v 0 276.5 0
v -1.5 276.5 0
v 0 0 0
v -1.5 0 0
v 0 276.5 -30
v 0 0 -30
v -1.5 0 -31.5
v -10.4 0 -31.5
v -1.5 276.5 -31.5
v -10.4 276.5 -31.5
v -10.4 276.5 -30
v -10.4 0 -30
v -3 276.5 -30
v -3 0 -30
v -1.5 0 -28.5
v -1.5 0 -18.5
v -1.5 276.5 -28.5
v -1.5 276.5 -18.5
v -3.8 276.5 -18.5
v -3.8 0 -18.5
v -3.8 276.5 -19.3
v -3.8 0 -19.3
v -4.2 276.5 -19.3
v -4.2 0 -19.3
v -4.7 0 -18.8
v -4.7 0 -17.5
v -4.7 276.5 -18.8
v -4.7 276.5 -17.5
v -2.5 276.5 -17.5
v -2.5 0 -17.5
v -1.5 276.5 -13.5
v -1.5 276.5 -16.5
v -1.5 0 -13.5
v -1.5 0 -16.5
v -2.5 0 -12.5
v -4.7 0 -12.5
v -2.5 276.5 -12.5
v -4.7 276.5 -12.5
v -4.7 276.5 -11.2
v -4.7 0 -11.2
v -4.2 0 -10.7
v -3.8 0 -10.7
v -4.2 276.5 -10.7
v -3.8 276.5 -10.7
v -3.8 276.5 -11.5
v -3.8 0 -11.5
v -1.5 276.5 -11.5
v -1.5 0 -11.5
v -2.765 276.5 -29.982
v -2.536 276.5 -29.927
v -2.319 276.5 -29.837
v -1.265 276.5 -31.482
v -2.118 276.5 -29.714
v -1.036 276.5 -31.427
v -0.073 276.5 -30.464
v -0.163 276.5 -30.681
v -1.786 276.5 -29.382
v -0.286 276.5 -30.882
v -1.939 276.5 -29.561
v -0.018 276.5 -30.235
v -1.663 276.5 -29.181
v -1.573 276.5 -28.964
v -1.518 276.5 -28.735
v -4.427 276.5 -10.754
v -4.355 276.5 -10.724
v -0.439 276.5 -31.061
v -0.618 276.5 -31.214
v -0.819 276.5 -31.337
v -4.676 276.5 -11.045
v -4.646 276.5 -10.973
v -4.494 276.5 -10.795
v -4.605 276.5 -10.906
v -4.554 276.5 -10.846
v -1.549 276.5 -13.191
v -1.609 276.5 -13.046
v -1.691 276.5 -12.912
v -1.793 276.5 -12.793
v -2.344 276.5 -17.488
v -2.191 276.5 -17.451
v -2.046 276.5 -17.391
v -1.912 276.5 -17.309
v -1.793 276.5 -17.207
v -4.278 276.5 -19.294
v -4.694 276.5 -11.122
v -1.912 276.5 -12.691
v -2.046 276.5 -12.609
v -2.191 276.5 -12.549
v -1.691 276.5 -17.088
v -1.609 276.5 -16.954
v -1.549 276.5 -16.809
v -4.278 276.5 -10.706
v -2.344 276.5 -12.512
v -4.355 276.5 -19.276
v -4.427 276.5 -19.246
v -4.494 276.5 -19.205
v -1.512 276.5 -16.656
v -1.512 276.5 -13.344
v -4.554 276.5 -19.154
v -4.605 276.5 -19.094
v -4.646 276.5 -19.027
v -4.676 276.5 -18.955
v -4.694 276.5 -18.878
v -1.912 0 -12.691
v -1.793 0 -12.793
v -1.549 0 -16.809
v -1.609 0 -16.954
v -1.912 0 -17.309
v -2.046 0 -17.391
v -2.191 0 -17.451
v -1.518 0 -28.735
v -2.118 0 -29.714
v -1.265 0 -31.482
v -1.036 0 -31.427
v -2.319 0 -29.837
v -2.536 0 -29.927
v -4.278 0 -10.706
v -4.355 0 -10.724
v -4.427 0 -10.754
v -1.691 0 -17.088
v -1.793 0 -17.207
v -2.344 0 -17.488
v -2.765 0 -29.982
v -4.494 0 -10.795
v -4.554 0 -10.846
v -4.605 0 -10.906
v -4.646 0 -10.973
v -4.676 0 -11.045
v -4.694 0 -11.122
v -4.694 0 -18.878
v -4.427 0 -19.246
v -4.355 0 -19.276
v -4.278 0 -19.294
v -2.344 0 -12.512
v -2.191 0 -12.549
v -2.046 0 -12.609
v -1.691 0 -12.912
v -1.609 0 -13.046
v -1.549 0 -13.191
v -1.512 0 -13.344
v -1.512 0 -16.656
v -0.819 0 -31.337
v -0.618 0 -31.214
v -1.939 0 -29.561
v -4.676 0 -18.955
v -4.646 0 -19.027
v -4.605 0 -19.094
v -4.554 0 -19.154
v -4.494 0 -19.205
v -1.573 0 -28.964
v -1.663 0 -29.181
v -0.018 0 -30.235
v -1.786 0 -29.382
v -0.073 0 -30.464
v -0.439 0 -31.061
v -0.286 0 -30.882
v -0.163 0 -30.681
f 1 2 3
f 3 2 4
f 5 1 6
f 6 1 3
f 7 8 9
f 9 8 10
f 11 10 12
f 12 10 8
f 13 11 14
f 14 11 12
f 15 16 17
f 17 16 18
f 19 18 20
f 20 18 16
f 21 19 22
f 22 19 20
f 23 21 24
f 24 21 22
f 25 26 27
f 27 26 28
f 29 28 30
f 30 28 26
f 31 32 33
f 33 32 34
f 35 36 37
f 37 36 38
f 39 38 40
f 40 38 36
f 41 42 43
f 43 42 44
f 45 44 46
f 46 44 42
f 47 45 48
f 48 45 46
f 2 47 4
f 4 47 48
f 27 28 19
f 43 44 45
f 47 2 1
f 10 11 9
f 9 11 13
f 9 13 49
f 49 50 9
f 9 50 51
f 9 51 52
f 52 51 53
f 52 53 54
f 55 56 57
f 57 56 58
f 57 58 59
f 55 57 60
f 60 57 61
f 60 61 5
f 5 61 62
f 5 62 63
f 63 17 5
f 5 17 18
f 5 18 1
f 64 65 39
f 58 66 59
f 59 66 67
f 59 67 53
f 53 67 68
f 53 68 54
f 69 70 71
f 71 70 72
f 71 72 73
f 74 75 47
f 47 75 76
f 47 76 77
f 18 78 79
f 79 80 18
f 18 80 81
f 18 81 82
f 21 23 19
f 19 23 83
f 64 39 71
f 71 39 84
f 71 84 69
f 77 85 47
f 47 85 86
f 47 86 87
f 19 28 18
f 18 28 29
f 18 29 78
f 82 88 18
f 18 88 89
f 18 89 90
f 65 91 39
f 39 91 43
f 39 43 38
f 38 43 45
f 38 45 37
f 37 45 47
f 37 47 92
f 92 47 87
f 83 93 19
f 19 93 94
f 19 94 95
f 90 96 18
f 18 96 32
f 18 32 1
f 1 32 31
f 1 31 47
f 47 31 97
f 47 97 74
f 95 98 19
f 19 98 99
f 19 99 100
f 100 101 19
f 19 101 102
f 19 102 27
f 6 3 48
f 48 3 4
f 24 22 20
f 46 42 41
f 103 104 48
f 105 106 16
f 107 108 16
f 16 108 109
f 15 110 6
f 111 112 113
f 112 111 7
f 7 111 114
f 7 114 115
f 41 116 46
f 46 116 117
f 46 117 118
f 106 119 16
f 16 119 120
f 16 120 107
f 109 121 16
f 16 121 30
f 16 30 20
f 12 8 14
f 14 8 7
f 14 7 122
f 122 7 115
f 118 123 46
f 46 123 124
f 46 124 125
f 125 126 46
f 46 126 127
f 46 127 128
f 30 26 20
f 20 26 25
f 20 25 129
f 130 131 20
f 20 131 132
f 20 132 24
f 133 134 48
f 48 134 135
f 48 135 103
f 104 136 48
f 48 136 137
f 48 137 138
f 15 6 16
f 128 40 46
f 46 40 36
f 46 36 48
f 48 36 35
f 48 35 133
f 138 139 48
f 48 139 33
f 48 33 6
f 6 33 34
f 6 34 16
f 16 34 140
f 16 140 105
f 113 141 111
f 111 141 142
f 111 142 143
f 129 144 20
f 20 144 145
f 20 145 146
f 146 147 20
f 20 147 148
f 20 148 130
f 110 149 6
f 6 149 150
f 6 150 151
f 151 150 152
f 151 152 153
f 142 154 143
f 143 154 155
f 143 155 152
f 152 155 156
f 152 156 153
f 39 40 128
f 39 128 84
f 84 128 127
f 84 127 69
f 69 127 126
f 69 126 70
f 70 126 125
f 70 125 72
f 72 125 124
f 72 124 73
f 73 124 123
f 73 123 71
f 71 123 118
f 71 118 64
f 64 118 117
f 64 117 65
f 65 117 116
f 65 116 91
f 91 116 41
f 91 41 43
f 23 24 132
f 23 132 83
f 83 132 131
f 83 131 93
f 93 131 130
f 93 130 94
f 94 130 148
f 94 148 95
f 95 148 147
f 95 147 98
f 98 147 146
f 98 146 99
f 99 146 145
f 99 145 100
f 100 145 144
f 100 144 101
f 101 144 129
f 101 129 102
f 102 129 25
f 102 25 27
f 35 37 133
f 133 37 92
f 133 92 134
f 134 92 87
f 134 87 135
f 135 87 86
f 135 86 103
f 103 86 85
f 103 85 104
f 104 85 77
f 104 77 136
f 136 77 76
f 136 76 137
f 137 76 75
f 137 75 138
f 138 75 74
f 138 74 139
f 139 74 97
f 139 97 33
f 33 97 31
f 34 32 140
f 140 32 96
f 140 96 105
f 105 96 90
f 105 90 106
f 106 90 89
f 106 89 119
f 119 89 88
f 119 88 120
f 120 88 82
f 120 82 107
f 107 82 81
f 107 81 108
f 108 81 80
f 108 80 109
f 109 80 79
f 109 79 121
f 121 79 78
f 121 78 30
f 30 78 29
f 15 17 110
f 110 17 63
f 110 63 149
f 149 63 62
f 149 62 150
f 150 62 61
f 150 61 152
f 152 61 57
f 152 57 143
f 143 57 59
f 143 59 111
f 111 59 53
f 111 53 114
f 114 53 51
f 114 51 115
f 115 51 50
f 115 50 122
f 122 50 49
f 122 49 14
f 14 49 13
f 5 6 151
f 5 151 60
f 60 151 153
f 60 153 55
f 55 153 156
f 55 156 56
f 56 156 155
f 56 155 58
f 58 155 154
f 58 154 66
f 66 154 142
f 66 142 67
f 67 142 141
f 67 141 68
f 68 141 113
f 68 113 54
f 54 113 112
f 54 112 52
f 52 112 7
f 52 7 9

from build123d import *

# Parameters (mm, degrees)
SALIENTE_EXTRUIR1_DEPTH = 276.5
REDONDEO1_R             = 0.5
REDONDEO2_R             = 1
REDONDEO3_R             = 1.5
REDONDEO4_R             = 1.5


with BuildPart() as part:
    # Croquis1 → Saliente-Extruir1 (new body)
    with BuildSketch(Plane(origin=(0, 0, 0), x_dir=(1, 0, 0), z_dir=(0, 1, 0))):
        Polygon((0, 0), (0, 31.5), (-10.4, 31.5), (-10.4, 30), (-1.5, 30), (-1.5, 18.5), (-3.8, 18.5), (-3.8, 19.3), (-4.7, 19.3), (-4.7, 17.5), (-1.5, 17.5), (-1.5, 12.5), (-4.7, 12.5), (-4.7, 10.7), (-3.8, 10.7), (-3.8, 11.5), (-1.5, 11.5), (-1.5, 0), align=None)
    extrude(amount=SALIENTE_EXTRUIR1_DEPTH)

    # Redondeo1
    redondeo1_edges = [part.edges().sort_by_distance(p)[0] for p in [
        (-4.7, 138.25, -10.7),
        (-4.7, 138.25, -19.3),
    ]]
    fillet(redondeo1_edges, radius=REDONDEO1_R)

    # Redondeo2
    redondeo2_edges = [part.edges().sort_by_distance(p)[0] for p in [
        (-1.5, 138.25, -12.5),
        (-1.5, 138.25, -17.5),
    ]]
    fillet(redondeo2_edges, radius=REDONDEO2_R)

    # Redondeo3
    redondeo3_edges = [part.edges().sort_by_distance(p)[0] for p in [
        (-1.5, 138.25, -30),
    ]]
    fillet(redondeo3_edges, radius=REDONDEO3_R)

    # Redondeo4
    redondeo4_edges = [part.edges().sort_by_distance(p)[0] for p in [
        (0, 138.25, -31.5),
    ]]
    fillet(redondeo4_edges, radius=REDONDEO4_R)


solid = part.part
